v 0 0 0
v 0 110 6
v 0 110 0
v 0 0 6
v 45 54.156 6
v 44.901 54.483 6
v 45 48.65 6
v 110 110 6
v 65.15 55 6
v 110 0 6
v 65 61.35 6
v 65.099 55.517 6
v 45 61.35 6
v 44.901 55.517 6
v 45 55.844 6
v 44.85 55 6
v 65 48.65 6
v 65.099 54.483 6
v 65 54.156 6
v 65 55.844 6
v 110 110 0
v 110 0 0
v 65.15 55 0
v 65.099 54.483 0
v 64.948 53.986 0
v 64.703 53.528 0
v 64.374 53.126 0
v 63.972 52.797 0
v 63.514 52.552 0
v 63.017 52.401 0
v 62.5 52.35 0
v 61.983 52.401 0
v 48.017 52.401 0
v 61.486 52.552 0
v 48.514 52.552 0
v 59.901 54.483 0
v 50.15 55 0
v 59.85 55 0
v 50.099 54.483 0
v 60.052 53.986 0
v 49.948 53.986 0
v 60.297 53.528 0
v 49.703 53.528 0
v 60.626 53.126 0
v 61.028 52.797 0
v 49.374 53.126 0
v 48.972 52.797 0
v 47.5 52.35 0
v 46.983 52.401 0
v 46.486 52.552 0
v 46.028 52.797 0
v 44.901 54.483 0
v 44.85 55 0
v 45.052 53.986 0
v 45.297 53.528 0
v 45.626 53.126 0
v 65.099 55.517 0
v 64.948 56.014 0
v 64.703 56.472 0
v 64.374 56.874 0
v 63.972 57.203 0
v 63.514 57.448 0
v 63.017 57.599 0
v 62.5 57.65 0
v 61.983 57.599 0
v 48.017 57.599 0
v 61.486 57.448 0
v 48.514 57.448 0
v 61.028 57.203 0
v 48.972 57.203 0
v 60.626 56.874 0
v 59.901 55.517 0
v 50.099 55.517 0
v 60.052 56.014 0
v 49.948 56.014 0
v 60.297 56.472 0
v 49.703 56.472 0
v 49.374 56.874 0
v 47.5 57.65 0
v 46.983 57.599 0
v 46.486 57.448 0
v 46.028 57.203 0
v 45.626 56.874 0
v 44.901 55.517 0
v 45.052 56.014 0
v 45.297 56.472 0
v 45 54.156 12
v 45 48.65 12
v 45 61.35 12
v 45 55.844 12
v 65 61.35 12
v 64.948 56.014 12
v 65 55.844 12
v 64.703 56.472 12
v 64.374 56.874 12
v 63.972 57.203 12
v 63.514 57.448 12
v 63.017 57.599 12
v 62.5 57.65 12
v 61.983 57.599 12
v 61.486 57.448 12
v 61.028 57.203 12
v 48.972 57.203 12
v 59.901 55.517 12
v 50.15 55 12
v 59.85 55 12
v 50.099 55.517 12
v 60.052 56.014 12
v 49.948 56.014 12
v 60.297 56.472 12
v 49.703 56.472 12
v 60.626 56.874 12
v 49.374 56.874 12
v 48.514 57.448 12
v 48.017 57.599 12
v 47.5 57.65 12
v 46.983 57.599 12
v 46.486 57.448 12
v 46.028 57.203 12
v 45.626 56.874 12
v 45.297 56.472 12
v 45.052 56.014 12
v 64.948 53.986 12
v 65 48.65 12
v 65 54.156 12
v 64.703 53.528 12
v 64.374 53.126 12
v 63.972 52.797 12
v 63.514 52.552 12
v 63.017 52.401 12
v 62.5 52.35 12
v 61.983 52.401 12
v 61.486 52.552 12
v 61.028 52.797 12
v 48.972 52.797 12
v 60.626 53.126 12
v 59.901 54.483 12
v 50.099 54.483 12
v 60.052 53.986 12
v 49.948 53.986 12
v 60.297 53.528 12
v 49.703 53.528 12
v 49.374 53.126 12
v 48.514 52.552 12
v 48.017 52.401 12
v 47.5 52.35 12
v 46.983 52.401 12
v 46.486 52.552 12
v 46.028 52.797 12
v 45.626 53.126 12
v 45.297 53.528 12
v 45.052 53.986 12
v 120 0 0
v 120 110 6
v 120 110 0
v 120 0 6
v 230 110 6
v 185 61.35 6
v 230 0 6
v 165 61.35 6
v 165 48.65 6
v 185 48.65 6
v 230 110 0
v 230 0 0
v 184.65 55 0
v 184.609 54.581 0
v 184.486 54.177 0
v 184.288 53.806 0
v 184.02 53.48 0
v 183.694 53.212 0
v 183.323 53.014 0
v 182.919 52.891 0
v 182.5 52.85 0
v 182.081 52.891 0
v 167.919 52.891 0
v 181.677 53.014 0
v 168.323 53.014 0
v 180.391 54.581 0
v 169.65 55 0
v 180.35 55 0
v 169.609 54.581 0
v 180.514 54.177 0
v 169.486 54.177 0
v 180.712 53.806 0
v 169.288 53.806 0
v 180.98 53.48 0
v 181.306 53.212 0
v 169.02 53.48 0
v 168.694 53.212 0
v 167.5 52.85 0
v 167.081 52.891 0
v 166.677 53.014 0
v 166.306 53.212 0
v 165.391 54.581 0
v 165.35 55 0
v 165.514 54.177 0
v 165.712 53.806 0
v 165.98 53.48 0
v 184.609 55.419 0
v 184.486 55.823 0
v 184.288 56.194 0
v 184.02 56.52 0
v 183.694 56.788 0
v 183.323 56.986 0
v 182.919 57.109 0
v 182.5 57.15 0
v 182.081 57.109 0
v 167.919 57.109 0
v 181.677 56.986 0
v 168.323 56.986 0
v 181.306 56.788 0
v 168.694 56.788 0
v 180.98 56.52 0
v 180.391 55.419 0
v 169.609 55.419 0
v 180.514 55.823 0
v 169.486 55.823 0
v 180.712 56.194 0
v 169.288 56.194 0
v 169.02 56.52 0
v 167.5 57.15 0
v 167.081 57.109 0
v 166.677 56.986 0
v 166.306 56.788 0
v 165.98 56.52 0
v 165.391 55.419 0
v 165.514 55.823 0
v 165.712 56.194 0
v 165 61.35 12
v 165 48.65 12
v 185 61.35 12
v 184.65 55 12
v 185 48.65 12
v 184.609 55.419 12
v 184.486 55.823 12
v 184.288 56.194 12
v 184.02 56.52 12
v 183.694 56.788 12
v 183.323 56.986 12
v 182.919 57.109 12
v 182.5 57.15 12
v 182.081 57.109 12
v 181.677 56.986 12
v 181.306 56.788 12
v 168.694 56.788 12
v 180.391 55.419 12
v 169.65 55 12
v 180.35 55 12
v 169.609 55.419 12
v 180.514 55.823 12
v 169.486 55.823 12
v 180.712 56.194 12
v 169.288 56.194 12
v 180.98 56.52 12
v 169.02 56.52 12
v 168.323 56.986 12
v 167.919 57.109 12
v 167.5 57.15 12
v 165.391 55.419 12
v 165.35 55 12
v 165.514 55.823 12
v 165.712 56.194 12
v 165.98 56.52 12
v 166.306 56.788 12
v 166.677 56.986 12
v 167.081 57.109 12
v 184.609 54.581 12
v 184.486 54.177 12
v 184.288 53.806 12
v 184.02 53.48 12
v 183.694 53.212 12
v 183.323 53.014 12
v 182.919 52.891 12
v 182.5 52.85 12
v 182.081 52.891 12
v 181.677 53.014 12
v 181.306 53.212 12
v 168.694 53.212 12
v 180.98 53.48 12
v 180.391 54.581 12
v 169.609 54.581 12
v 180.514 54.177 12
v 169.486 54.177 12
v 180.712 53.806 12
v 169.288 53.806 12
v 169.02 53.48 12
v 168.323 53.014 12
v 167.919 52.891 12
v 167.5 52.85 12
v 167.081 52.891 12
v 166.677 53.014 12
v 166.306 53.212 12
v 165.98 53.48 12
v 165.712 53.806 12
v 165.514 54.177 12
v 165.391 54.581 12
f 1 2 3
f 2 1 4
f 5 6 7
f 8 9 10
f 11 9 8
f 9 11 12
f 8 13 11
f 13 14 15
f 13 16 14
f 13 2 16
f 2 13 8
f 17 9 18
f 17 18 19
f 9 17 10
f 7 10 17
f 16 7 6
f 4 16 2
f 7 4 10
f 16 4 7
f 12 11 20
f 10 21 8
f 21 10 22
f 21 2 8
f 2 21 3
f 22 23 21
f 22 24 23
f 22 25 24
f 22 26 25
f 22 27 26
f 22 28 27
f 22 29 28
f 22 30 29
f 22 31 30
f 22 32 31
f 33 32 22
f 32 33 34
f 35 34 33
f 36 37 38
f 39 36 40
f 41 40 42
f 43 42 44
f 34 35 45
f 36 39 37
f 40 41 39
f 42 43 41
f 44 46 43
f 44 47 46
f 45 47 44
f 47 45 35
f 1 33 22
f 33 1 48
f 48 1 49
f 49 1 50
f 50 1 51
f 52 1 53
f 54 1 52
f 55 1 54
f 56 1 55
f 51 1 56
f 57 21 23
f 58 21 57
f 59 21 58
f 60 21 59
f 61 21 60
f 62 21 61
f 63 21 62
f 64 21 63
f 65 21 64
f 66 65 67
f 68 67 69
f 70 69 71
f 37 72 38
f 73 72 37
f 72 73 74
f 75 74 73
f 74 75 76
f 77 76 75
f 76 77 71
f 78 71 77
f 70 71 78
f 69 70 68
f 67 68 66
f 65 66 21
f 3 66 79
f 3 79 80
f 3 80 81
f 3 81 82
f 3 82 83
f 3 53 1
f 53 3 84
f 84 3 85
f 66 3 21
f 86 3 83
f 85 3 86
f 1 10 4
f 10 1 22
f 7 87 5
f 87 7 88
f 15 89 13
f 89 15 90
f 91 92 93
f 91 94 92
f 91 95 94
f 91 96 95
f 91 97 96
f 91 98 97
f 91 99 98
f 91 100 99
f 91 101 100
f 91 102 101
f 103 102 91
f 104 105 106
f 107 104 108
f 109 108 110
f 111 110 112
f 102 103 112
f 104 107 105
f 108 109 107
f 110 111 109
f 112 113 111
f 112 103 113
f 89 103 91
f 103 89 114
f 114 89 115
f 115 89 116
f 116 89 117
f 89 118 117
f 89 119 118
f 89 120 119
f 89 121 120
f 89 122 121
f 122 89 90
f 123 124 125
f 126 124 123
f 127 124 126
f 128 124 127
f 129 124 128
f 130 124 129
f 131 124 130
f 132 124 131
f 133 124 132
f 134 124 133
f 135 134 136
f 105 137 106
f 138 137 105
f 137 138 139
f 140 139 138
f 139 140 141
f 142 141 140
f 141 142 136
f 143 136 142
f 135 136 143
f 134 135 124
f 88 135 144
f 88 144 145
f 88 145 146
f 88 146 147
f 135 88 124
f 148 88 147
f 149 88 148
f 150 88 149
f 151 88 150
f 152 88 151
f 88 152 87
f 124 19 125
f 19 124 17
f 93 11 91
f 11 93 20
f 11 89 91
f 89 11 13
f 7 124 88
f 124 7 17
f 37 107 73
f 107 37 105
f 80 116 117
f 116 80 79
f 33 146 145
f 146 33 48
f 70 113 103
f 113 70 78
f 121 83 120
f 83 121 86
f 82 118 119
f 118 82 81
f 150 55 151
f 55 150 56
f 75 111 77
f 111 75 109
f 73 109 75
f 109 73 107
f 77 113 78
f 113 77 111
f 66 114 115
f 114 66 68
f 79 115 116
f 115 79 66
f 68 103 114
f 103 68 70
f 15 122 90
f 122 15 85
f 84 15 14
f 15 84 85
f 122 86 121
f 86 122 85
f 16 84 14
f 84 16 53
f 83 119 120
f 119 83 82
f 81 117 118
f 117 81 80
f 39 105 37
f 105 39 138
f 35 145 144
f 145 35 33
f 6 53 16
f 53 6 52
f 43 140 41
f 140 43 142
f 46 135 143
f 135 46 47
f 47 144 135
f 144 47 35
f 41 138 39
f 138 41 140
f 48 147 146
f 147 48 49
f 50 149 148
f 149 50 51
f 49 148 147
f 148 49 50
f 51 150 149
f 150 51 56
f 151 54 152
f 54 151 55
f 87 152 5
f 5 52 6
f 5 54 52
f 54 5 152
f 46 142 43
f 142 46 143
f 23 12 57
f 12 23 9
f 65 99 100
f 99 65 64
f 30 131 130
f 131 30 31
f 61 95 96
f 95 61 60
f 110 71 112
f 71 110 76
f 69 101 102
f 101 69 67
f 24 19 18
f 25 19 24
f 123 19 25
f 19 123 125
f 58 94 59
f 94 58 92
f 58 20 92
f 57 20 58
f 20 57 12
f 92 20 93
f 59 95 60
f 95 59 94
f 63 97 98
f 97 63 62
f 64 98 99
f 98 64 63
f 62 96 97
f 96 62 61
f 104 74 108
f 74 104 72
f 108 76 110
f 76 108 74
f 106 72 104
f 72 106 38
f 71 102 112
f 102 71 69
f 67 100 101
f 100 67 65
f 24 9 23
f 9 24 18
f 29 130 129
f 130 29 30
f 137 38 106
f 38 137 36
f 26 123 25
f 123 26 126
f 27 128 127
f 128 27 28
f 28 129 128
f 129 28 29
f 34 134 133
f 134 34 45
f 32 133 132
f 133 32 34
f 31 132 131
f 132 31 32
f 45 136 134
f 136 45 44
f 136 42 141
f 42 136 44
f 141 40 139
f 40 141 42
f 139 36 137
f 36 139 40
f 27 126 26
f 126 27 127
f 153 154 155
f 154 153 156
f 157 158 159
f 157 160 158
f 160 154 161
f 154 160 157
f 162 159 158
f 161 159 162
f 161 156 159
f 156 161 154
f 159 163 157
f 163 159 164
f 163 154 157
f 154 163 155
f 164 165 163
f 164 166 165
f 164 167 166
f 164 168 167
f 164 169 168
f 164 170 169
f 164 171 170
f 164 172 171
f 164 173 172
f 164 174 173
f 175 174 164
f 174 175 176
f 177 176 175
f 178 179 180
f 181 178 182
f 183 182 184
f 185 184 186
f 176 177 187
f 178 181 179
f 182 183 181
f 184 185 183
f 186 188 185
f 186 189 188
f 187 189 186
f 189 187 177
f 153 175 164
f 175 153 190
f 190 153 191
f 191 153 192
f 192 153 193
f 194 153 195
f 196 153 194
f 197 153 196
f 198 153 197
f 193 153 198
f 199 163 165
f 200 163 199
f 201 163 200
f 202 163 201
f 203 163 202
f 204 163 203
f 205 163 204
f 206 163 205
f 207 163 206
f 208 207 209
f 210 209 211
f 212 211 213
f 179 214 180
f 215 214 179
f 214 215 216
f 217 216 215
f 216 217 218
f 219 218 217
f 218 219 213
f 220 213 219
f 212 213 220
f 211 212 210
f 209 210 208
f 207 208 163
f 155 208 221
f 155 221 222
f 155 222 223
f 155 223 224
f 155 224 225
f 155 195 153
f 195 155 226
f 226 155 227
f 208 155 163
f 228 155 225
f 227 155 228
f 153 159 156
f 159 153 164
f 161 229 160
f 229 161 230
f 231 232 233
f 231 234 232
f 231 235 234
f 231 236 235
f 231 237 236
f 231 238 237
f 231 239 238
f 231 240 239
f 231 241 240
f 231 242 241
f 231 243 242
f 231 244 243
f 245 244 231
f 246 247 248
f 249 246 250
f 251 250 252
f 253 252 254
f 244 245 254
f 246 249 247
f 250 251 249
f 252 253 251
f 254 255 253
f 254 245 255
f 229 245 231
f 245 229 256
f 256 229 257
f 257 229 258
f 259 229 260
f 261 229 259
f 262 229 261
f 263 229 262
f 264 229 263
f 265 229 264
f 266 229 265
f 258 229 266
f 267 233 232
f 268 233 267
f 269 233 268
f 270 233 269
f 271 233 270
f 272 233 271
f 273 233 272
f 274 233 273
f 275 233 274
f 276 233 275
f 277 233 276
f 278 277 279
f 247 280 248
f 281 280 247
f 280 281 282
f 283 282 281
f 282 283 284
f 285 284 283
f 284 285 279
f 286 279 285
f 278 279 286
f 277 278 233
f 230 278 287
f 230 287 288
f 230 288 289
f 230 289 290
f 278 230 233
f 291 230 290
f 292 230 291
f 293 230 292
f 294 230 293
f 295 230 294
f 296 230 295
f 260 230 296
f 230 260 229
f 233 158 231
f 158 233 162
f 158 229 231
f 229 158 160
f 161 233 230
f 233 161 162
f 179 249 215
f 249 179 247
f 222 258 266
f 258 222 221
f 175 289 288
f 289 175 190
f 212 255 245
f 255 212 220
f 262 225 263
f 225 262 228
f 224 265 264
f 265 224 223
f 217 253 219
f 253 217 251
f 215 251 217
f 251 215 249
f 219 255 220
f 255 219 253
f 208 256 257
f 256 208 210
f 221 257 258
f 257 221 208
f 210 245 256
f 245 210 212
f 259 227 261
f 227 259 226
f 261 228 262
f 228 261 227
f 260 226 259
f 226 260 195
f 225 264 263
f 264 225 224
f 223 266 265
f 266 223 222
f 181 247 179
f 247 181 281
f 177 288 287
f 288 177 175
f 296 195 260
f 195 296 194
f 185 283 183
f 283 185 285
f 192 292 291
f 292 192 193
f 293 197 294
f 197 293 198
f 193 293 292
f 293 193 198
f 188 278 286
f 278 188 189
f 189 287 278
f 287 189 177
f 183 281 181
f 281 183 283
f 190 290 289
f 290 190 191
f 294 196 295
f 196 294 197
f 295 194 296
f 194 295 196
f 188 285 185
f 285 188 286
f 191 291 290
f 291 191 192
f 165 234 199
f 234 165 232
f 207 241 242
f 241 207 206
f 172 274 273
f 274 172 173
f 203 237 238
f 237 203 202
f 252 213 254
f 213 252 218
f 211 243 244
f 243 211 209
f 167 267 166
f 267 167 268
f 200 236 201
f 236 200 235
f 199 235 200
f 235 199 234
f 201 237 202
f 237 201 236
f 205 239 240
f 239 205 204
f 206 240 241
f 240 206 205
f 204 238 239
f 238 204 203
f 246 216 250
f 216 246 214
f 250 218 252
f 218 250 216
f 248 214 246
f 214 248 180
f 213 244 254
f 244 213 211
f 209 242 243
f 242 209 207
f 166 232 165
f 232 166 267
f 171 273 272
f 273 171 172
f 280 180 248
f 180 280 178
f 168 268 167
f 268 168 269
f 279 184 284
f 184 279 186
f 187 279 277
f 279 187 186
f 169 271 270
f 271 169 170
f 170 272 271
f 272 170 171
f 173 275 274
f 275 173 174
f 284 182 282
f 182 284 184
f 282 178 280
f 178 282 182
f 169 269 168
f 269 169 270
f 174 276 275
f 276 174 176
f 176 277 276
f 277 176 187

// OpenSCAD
// SPDX-License-Identifier: AGPL-3.0-or-later
// blob-scale platform - parametric plates for a standard bar load cell
// (DRAFT v0 - UNTESTED. Verify hole spacing against YOUR cell's datasheet
// before printing; cheap cells vary.)
//
// The design is the classic kitchen-scale sandwich:
//   [ top plate ]        <- container sits here; bolted to ONE end of the bar
//     = load cell =      <- floats: only its ends touch anything
//   [ base plate ]       <- sits on the bed; bolted to the OTHER end
//
// Spacer bosses on each plate lift the bar so it can flex freely.
// Print: PETG or PLA, 5+ perimeters or ~50% infill, no supports needed.
//
// Set these from your load cell's datasheet (defaults fit common
// TAL220-style 5kg bars, ~80 x 12.7 x 12.7 mm):

cell_length      = 80;    // bar length, mm
cell_width       = 12.7;  // bar width, mm
hole_spacing_a   = 15;    // distance between the two holes on end A (M5), mm
hole_dia_a       = 5.3;   // M5 clearance
hole_spacing_b   = 15;    // distance between the two holes on end B (M4), mm
hole_dia_b       = 4.3;   // M4 clearance
hole_end_offset  = 5;     // first hole center from the bar's end, mm

plate_size       = 110;   // square plates, mm (>= container footprint)
plate_thickness  = 6;
boss_height      = 6;     // spacer height: bar-to-plate air gap
boss_width       = 20;    // spacer footprint under the bar end

$fn = 32;

module plate(hole_spacing, hole_dia) {
    difference() {
        union() {
            // the plate
            cube([plate_size, plate_size, plate_thickness]);
            // spacer boss under one end of the bar, centered on the plate's X
            translate([(plate_size - boss_width) / 2,
                       (plate_size - cell_width) / 2,
                       plate_thickness])
                cube([boss_width, cell_width, boss_height]);
        }
        // two bolt holes through boss + plate
        for (i = [0, 1])
            translate([plate_size / 2 - hole_spacing / 2 + i * hole_spacing,
                       plate_size / 2,
                       -1])
                cylinder(h = plate_thickness + boss_height + 2, d = hole_dia);
    }
}

// base plate (M5 end by default)
plate(hole_spacing_a, hole_dia_a);

// top plate (M4 end), laid out beside it for printing
translate([plate_size + 10, 0, 0])
    plate(hole_spacing_b, hole_dia_b);
